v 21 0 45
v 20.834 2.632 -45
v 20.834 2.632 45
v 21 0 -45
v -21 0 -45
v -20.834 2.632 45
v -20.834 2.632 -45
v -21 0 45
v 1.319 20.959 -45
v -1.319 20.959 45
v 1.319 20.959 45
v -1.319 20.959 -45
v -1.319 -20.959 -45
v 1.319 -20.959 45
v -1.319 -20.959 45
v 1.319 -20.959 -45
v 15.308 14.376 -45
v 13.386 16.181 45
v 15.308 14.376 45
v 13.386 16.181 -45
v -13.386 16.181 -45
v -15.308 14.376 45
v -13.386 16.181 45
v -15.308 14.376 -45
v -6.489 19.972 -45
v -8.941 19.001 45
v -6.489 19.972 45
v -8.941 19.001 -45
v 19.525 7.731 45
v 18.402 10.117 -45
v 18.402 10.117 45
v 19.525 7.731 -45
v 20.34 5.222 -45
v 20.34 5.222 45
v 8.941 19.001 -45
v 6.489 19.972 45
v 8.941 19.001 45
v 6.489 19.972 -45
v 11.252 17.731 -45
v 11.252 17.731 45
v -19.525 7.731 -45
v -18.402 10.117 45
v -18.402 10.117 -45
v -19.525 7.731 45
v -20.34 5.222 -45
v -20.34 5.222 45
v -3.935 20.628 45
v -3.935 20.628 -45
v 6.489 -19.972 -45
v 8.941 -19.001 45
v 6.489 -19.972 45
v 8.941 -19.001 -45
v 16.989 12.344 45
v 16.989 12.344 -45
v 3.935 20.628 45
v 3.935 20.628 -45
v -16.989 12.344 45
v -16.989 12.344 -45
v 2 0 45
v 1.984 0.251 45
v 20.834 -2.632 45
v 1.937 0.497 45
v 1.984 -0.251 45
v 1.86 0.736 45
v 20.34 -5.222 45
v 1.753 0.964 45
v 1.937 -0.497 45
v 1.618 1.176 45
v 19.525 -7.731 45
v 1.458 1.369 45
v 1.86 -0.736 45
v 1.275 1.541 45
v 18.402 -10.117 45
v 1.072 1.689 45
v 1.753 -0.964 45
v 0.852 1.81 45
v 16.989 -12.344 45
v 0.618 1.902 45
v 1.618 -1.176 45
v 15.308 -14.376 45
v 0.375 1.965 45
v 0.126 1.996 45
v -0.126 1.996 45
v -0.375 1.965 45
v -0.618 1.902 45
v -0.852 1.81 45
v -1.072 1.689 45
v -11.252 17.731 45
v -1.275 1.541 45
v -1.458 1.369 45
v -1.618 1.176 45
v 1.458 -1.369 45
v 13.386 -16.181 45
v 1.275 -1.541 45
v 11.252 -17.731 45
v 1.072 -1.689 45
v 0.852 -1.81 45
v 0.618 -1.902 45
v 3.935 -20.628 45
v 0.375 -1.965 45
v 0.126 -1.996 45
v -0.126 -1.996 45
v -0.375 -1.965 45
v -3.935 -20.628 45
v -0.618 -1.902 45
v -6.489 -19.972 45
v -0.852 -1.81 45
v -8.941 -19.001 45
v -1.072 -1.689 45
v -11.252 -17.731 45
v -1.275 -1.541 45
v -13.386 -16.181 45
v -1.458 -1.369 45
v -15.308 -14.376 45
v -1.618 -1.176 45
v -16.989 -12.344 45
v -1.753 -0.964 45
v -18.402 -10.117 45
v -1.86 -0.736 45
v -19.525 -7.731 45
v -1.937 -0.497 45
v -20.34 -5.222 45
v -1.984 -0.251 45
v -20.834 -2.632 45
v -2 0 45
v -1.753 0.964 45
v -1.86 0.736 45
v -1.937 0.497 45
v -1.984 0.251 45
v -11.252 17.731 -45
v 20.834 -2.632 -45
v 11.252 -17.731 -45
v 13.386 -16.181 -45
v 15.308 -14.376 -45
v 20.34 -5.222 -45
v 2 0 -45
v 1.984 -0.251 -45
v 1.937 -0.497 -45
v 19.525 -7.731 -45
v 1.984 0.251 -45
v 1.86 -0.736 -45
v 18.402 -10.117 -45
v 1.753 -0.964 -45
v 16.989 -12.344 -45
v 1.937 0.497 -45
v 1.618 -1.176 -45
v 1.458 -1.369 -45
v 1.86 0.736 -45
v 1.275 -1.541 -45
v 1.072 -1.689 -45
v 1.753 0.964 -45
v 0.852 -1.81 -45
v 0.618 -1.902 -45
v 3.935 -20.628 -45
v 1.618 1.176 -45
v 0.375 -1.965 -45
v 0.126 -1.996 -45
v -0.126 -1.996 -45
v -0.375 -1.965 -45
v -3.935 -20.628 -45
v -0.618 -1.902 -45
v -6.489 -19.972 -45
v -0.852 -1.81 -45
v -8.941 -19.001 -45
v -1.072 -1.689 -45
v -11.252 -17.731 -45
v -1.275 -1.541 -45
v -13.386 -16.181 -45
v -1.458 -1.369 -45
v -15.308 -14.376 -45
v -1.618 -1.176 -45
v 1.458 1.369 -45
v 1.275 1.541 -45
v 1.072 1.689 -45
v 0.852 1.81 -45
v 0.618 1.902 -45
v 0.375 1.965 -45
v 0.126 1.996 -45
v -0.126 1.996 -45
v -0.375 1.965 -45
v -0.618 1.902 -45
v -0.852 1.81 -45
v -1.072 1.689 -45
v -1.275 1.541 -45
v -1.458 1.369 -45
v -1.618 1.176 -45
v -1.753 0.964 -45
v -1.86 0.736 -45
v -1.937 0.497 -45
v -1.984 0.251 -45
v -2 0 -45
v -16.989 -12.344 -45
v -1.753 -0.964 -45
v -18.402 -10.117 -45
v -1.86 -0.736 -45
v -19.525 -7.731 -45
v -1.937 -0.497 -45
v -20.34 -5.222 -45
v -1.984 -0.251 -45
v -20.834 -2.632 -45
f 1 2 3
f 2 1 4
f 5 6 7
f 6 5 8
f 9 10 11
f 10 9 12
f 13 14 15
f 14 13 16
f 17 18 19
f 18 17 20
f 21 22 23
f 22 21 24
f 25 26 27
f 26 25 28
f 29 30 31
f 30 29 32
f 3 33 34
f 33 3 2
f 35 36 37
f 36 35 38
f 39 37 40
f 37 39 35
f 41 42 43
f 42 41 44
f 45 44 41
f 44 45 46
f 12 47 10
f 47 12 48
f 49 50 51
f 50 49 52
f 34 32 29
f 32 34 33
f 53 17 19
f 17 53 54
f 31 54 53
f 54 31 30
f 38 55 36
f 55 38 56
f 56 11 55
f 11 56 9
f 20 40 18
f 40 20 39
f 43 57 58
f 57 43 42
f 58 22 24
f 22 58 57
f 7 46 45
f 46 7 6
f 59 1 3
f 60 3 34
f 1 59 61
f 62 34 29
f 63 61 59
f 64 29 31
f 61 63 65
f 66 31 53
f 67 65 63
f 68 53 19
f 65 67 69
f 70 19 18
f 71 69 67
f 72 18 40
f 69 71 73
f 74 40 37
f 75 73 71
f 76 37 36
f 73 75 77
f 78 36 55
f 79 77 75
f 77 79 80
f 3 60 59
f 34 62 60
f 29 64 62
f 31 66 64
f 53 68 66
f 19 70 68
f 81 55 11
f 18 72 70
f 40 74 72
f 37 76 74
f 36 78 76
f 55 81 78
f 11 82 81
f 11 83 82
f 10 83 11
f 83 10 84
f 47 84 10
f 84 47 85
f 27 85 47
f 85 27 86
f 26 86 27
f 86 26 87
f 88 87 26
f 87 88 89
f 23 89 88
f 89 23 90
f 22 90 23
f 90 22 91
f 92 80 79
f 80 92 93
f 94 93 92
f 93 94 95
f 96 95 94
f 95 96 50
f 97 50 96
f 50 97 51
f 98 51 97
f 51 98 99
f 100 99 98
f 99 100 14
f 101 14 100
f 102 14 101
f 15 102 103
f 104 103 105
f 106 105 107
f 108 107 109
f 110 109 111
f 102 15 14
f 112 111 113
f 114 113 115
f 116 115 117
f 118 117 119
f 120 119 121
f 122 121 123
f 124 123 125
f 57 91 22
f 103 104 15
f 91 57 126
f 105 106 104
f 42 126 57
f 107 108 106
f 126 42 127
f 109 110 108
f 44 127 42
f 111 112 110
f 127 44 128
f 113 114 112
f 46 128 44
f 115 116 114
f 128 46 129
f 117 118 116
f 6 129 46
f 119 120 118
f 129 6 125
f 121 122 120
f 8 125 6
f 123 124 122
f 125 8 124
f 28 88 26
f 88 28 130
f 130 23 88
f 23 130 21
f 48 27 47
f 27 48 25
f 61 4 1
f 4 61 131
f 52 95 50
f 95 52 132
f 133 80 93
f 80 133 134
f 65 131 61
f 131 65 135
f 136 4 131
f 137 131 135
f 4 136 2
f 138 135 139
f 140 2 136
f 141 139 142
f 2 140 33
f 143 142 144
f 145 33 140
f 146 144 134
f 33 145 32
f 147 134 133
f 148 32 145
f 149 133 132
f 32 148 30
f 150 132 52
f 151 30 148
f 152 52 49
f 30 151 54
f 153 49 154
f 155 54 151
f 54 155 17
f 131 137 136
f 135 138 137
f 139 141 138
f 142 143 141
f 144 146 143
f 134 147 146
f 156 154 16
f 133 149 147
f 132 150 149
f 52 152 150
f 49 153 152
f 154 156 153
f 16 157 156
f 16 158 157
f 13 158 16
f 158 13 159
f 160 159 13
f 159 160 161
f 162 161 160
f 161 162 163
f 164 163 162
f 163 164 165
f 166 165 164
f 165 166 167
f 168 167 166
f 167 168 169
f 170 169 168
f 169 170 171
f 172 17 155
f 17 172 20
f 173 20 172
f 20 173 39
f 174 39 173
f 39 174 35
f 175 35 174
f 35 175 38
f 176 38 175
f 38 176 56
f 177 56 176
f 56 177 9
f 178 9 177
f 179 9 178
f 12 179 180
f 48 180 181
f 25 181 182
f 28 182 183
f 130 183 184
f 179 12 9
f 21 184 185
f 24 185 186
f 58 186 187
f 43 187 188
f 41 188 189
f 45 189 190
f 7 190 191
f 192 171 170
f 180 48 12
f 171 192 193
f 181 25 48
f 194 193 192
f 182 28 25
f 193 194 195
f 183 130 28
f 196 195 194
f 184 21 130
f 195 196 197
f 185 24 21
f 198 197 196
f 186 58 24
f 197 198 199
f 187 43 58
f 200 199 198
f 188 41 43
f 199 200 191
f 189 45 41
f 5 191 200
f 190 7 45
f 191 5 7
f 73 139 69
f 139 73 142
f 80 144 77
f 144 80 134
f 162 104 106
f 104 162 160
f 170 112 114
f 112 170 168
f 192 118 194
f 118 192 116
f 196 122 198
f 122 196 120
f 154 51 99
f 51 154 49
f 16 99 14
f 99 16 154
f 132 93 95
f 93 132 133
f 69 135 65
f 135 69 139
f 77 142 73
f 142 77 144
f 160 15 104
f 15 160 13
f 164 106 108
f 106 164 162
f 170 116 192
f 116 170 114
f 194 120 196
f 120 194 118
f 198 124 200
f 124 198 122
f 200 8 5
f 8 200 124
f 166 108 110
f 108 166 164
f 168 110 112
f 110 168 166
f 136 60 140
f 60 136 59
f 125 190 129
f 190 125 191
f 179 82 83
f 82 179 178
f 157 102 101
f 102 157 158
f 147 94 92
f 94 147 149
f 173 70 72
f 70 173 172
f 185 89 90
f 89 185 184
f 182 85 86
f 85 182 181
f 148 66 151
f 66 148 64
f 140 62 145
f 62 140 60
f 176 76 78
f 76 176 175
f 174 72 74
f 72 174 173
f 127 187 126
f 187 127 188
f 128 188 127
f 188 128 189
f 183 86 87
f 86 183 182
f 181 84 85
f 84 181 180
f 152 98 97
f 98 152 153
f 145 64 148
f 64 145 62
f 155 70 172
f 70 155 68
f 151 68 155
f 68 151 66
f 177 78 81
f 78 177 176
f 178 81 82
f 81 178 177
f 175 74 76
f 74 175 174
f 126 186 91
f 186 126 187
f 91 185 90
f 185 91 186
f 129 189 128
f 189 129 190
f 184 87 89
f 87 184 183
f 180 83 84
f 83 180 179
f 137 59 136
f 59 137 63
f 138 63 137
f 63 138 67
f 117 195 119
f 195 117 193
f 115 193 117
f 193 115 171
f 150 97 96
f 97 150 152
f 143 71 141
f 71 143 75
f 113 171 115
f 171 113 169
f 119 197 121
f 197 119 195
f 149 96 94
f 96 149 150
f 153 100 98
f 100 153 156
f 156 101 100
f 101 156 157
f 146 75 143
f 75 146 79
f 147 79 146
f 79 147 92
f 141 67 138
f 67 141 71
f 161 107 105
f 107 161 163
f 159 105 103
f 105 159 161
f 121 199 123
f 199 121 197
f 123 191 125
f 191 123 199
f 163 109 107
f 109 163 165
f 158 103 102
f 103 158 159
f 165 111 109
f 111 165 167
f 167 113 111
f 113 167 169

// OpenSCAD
$fn = 50;


difference() {
	union() {
		translate(v = [0, 0, -45.0000000000]) {
			cylinder(h = 90, r = 21.0000000000);
		}
	}
	union() {
		translate(v = [0, 0, -100.0000000000]) {
			cylinder(h = 200, r = 2);
		}
	}
}
